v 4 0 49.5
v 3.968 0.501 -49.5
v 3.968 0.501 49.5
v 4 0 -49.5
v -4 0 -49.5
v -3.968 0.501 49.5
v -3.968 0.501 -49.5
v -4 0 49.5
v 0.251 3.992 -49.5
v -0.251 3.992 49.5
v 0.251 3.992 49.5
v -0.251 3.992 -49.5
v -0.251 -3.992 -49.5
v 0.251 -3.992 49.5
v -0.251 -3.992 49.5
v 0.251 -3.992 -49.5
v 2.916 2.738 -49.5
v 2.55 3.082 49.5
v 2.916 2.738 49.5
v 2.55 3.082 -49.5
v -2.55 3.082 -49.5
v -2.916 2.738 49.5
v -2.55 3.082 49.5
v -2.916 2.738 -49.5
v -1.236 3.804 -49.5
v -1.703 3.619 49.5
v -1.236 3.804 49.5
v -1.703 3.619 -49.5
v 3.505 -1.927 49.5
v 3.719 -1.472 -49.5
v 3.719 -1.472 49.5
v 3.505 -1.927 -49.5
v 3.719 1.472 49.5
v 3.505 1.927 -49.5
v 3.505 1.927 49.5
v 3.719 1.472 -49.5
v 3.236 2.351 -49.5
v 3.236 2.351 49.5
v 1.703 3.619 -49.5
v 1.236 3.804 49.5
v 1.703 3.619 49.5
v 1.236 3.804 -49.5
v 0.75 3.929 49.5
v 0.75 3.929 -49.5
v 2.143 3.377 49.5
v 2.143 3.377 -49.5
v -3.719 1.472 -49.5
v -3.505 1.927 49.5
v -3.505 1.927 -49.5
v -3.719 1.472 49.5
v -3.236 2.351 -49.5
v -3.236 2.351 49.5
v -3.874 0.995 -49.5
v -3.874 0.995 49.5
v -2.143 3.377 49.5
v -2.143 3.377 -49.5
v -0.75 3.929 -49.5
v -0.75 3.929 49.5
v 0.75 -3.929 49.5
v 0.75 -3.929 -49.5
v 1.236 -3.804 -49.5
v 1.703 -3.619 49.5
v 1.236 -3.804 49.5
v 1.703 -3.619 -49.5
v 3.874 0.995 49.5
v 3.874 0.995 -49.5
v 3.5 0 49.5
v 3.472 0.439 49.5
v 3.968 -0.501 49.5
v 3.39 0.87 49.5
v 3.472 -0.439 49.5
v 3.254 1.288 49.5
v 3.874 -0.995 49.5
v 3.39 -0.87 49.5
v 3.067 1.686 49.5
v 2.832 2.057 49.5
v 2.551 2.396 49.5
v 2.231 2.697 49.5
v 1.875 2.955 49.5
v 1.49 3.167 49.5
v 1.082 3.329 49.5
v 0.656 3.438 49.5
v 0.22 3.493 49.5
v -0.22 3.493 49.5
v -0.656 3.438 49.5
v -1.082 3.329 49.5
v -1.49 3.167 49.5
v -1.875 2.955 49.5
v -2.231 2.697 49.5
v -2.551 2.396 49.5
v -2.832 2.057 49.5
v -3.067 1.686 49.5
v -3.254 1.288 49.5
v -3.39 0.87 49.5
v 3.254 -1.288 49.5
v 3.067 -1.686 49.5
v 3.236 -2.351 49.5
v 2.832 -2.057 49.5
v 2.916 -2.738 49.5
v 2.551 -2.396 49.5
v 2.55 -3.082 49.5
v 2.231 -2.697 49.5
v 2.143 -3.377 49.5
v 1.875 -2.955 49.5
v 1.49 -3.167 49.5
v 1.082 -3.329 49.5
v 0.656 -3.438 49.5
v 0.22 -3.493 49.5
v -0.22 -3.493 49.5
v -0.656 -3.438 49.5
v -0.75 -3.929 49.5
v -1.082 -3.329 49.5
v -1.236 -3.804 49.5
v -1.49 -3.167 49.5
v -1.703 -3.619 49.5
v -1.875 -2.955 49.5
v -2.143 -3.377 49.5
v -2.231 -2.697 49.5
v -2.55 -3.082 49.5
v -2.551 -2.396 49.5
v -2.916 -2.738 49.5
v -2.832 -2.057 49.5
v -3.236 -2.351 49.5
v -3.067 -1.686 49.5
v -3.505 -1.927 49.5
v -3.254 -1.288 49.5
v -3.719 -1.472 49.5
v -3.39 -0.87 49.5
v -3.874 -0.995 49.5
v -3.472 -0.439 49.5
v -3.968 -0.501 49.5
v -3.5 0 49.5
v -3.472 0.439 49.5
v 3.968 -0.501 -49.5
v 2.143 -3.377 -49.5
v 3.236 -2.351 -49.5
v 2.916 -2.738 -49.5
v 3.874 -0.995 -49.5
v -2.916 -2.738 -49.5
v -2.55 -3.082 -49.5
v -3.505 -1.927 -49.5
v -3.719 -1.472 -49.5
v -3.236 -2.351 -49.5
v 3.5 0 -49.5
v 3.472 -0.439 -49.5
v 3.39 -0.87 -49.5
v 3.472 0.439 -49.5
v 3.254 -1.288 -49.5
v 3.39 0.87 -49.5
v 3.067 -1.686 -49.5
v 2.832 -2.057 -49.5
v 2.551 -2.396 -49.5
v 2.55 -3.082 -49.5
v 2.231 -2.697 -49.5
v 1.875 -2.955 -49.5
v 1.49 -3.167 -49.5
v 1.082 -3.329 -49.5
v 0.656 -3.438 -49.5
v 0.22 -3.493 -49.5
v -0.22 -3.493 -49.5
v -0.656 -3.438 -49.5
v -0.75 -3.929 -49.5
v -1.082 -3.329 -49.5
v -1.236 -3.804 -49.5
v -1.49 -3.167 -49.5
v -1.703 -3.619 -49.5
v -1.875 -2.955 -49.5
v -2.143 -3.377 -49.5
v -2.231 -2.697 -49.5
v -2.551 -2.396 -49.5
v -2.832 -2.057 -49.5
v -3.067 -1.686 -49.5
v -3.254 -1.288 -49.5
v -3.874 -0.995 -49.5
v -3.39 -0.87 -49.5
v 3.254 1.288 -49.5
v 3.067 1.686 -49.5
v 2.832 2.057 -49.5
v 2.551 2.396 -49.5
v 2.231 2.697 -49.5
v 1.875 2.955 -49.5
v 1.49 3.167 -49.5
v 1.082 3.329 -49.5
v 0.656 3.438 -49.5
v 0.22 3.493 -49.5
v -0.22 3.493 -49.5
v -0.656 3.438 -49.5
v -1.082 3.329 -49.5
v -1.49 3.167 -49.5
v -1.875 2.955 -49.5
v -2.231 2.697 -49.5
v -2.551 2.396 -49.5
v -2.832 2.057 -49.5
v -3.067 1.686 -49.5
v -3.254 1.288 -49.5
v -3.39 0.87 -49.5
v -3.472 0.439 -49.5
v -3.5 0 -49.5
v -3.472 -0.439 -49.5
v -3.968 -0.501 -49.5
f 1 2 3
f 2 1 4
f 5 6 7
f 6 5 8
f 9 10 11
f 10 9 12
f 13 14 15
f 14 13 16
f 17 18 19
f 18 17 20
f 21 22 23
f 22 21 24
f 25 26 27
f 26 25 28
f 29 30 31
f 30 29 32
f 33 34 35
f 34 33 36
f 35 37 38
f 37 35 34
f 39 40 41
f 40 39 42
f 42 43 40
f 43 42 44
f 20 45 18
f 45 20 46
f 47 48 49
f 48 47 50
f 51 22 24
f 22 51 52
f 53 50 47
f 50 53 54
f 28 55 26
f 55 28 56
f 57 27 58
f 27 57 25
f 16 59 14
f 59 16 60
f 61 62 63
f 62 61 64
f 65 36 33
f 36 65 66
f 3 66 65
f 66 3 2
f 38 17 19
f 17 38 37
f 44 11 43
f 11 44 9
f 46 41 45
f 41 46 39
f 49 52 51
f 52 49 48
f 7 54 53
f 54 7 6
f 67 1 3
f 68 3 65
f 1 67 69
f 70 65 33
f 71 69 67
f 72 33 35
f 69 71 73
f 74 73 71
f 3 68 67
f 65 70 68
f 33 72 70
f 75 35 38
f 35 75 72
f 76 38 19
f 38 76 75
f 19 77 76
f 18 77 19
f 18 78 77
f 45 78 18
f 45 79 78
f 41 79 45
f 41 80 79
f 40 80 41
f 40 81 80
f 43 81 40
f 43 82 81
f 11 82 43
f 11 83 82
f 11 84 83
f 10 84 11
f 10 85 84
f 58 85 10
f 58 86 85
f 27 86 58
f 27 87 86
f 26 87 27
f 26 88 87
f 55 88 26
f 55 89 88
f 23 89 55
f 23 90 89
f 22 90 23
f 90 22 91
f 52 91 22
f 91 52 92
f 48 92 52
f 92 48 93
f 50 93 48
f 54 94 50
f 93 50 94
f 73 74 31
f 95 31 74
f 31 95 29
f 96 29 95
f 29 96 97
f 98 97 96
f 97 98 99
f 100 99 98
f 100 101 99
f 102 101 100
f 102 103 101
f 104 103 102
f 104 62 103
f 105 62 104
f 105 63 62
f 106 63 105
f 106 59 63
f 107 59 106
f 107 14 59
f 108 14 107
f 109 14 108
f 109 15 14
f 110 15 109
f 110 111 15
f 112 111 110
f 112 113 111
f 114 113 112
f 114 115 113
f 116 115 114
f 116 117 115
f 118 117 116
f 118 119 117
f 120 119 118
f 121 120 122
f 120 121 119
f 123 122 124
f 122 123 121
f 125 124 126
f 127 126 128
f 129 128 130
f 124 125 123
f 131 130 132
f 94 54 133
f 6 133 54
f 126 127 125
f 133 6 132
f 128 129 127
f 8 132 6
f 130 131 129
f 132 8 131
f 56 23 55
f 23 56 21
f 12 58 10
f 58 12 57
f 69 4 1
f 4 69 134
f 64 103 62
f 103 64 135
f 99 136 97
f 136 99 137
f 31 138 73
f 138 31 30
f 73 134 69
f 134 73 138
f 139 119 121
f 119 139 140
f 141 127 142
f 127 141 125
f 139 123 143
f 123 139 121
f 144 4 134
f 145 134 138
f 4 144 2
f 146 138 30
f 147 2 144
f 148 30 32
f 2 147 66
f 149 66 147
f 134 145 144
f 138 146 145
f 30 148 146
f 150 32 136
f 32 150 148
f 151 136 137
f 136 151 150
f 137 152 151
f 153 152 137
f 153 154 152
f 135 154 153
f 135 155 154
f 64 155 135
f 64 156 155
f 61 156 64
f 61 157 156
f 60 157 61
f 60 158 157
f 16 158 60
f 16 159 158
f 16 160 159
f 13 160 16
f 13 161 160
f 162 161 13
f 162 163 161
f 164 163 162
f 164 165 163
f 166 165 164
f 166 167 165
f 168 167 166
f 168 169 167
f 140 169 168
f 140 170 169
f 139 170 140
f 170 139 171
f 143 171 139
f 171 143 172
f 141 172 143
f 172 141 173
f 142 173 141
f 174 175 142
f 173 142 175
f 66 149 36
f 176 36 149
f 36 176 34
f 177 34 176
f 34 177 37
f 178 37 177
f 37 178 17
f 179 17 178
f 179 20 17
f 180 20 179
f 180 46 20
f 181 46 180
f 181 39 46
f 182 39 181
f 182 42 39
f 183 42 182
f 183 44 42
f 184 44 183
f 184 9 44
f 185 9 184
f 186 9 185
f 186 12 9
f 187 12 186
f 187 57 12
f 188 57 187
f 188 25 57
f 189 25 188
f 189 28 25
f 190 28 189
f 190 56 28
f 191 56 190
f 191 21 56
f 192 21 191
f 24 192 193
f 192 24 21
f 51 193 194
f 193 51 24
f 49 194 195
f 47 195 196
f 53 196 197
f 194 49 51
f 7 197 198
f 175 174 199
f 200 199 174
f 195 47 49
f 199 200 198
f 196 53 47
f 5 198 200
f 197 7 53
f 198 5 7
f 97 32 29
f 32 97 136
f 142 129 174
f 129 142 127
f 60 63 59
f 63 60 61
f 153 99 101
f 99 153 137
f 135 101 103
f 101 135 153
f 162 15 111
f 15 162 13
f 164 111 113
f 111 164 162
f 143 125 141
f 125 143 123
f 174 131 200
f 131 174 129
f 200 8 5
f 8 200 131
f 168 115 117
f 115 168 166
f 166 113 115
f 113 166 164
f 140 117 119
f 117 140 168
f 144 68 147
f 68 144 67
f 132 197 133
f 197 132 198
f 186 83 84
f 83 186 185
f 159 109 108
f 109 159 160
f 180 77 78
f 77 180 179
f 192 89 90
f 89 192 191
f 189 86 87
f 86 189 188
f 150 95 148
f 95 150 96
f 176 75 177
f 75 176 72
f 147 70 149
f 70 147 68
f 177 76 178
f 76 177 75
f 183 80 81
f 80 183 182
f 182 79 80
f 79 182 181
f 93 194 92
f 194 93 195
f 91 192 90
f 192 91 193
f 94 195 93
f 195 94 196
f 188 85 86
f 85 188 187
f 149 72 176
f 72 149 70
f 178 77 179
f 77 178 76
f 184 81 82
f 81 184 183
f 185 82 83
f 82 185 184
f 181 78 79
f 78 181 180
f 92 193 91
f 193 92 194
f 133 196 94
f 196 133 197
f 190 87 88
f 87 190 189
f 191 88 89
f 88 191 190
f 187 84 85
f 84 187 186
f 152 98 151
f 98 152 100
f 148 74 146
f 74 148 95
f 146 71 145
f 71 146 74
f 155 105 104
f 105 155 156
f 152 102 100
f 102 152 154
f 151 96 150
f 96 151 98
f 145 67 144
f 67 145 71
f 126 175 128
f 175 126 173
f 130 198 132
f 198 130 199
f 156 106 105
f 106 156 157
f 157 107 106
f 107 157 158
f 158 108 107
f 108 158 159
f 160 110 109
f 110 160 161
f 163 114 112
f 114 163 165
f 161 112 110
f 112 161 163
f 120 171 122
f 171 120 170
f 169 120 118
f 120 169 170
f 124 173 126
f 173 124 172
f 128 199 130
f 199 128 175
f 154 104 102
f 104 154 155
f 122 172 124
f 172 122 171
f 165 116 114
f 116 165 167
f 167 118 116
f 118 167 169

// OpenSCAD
$fn = 50;


difference() {
	union() {
		translate(v = [0, 0, -49.5000000000]) {
			cylinder(h = 99, r = 4.0000000000);
		}
	}
	union() {
		translate(v = [0, 0, -100.0000000000]) {
			cylinder(h = 200, r = 3.5000000000);
		}
	}
}
